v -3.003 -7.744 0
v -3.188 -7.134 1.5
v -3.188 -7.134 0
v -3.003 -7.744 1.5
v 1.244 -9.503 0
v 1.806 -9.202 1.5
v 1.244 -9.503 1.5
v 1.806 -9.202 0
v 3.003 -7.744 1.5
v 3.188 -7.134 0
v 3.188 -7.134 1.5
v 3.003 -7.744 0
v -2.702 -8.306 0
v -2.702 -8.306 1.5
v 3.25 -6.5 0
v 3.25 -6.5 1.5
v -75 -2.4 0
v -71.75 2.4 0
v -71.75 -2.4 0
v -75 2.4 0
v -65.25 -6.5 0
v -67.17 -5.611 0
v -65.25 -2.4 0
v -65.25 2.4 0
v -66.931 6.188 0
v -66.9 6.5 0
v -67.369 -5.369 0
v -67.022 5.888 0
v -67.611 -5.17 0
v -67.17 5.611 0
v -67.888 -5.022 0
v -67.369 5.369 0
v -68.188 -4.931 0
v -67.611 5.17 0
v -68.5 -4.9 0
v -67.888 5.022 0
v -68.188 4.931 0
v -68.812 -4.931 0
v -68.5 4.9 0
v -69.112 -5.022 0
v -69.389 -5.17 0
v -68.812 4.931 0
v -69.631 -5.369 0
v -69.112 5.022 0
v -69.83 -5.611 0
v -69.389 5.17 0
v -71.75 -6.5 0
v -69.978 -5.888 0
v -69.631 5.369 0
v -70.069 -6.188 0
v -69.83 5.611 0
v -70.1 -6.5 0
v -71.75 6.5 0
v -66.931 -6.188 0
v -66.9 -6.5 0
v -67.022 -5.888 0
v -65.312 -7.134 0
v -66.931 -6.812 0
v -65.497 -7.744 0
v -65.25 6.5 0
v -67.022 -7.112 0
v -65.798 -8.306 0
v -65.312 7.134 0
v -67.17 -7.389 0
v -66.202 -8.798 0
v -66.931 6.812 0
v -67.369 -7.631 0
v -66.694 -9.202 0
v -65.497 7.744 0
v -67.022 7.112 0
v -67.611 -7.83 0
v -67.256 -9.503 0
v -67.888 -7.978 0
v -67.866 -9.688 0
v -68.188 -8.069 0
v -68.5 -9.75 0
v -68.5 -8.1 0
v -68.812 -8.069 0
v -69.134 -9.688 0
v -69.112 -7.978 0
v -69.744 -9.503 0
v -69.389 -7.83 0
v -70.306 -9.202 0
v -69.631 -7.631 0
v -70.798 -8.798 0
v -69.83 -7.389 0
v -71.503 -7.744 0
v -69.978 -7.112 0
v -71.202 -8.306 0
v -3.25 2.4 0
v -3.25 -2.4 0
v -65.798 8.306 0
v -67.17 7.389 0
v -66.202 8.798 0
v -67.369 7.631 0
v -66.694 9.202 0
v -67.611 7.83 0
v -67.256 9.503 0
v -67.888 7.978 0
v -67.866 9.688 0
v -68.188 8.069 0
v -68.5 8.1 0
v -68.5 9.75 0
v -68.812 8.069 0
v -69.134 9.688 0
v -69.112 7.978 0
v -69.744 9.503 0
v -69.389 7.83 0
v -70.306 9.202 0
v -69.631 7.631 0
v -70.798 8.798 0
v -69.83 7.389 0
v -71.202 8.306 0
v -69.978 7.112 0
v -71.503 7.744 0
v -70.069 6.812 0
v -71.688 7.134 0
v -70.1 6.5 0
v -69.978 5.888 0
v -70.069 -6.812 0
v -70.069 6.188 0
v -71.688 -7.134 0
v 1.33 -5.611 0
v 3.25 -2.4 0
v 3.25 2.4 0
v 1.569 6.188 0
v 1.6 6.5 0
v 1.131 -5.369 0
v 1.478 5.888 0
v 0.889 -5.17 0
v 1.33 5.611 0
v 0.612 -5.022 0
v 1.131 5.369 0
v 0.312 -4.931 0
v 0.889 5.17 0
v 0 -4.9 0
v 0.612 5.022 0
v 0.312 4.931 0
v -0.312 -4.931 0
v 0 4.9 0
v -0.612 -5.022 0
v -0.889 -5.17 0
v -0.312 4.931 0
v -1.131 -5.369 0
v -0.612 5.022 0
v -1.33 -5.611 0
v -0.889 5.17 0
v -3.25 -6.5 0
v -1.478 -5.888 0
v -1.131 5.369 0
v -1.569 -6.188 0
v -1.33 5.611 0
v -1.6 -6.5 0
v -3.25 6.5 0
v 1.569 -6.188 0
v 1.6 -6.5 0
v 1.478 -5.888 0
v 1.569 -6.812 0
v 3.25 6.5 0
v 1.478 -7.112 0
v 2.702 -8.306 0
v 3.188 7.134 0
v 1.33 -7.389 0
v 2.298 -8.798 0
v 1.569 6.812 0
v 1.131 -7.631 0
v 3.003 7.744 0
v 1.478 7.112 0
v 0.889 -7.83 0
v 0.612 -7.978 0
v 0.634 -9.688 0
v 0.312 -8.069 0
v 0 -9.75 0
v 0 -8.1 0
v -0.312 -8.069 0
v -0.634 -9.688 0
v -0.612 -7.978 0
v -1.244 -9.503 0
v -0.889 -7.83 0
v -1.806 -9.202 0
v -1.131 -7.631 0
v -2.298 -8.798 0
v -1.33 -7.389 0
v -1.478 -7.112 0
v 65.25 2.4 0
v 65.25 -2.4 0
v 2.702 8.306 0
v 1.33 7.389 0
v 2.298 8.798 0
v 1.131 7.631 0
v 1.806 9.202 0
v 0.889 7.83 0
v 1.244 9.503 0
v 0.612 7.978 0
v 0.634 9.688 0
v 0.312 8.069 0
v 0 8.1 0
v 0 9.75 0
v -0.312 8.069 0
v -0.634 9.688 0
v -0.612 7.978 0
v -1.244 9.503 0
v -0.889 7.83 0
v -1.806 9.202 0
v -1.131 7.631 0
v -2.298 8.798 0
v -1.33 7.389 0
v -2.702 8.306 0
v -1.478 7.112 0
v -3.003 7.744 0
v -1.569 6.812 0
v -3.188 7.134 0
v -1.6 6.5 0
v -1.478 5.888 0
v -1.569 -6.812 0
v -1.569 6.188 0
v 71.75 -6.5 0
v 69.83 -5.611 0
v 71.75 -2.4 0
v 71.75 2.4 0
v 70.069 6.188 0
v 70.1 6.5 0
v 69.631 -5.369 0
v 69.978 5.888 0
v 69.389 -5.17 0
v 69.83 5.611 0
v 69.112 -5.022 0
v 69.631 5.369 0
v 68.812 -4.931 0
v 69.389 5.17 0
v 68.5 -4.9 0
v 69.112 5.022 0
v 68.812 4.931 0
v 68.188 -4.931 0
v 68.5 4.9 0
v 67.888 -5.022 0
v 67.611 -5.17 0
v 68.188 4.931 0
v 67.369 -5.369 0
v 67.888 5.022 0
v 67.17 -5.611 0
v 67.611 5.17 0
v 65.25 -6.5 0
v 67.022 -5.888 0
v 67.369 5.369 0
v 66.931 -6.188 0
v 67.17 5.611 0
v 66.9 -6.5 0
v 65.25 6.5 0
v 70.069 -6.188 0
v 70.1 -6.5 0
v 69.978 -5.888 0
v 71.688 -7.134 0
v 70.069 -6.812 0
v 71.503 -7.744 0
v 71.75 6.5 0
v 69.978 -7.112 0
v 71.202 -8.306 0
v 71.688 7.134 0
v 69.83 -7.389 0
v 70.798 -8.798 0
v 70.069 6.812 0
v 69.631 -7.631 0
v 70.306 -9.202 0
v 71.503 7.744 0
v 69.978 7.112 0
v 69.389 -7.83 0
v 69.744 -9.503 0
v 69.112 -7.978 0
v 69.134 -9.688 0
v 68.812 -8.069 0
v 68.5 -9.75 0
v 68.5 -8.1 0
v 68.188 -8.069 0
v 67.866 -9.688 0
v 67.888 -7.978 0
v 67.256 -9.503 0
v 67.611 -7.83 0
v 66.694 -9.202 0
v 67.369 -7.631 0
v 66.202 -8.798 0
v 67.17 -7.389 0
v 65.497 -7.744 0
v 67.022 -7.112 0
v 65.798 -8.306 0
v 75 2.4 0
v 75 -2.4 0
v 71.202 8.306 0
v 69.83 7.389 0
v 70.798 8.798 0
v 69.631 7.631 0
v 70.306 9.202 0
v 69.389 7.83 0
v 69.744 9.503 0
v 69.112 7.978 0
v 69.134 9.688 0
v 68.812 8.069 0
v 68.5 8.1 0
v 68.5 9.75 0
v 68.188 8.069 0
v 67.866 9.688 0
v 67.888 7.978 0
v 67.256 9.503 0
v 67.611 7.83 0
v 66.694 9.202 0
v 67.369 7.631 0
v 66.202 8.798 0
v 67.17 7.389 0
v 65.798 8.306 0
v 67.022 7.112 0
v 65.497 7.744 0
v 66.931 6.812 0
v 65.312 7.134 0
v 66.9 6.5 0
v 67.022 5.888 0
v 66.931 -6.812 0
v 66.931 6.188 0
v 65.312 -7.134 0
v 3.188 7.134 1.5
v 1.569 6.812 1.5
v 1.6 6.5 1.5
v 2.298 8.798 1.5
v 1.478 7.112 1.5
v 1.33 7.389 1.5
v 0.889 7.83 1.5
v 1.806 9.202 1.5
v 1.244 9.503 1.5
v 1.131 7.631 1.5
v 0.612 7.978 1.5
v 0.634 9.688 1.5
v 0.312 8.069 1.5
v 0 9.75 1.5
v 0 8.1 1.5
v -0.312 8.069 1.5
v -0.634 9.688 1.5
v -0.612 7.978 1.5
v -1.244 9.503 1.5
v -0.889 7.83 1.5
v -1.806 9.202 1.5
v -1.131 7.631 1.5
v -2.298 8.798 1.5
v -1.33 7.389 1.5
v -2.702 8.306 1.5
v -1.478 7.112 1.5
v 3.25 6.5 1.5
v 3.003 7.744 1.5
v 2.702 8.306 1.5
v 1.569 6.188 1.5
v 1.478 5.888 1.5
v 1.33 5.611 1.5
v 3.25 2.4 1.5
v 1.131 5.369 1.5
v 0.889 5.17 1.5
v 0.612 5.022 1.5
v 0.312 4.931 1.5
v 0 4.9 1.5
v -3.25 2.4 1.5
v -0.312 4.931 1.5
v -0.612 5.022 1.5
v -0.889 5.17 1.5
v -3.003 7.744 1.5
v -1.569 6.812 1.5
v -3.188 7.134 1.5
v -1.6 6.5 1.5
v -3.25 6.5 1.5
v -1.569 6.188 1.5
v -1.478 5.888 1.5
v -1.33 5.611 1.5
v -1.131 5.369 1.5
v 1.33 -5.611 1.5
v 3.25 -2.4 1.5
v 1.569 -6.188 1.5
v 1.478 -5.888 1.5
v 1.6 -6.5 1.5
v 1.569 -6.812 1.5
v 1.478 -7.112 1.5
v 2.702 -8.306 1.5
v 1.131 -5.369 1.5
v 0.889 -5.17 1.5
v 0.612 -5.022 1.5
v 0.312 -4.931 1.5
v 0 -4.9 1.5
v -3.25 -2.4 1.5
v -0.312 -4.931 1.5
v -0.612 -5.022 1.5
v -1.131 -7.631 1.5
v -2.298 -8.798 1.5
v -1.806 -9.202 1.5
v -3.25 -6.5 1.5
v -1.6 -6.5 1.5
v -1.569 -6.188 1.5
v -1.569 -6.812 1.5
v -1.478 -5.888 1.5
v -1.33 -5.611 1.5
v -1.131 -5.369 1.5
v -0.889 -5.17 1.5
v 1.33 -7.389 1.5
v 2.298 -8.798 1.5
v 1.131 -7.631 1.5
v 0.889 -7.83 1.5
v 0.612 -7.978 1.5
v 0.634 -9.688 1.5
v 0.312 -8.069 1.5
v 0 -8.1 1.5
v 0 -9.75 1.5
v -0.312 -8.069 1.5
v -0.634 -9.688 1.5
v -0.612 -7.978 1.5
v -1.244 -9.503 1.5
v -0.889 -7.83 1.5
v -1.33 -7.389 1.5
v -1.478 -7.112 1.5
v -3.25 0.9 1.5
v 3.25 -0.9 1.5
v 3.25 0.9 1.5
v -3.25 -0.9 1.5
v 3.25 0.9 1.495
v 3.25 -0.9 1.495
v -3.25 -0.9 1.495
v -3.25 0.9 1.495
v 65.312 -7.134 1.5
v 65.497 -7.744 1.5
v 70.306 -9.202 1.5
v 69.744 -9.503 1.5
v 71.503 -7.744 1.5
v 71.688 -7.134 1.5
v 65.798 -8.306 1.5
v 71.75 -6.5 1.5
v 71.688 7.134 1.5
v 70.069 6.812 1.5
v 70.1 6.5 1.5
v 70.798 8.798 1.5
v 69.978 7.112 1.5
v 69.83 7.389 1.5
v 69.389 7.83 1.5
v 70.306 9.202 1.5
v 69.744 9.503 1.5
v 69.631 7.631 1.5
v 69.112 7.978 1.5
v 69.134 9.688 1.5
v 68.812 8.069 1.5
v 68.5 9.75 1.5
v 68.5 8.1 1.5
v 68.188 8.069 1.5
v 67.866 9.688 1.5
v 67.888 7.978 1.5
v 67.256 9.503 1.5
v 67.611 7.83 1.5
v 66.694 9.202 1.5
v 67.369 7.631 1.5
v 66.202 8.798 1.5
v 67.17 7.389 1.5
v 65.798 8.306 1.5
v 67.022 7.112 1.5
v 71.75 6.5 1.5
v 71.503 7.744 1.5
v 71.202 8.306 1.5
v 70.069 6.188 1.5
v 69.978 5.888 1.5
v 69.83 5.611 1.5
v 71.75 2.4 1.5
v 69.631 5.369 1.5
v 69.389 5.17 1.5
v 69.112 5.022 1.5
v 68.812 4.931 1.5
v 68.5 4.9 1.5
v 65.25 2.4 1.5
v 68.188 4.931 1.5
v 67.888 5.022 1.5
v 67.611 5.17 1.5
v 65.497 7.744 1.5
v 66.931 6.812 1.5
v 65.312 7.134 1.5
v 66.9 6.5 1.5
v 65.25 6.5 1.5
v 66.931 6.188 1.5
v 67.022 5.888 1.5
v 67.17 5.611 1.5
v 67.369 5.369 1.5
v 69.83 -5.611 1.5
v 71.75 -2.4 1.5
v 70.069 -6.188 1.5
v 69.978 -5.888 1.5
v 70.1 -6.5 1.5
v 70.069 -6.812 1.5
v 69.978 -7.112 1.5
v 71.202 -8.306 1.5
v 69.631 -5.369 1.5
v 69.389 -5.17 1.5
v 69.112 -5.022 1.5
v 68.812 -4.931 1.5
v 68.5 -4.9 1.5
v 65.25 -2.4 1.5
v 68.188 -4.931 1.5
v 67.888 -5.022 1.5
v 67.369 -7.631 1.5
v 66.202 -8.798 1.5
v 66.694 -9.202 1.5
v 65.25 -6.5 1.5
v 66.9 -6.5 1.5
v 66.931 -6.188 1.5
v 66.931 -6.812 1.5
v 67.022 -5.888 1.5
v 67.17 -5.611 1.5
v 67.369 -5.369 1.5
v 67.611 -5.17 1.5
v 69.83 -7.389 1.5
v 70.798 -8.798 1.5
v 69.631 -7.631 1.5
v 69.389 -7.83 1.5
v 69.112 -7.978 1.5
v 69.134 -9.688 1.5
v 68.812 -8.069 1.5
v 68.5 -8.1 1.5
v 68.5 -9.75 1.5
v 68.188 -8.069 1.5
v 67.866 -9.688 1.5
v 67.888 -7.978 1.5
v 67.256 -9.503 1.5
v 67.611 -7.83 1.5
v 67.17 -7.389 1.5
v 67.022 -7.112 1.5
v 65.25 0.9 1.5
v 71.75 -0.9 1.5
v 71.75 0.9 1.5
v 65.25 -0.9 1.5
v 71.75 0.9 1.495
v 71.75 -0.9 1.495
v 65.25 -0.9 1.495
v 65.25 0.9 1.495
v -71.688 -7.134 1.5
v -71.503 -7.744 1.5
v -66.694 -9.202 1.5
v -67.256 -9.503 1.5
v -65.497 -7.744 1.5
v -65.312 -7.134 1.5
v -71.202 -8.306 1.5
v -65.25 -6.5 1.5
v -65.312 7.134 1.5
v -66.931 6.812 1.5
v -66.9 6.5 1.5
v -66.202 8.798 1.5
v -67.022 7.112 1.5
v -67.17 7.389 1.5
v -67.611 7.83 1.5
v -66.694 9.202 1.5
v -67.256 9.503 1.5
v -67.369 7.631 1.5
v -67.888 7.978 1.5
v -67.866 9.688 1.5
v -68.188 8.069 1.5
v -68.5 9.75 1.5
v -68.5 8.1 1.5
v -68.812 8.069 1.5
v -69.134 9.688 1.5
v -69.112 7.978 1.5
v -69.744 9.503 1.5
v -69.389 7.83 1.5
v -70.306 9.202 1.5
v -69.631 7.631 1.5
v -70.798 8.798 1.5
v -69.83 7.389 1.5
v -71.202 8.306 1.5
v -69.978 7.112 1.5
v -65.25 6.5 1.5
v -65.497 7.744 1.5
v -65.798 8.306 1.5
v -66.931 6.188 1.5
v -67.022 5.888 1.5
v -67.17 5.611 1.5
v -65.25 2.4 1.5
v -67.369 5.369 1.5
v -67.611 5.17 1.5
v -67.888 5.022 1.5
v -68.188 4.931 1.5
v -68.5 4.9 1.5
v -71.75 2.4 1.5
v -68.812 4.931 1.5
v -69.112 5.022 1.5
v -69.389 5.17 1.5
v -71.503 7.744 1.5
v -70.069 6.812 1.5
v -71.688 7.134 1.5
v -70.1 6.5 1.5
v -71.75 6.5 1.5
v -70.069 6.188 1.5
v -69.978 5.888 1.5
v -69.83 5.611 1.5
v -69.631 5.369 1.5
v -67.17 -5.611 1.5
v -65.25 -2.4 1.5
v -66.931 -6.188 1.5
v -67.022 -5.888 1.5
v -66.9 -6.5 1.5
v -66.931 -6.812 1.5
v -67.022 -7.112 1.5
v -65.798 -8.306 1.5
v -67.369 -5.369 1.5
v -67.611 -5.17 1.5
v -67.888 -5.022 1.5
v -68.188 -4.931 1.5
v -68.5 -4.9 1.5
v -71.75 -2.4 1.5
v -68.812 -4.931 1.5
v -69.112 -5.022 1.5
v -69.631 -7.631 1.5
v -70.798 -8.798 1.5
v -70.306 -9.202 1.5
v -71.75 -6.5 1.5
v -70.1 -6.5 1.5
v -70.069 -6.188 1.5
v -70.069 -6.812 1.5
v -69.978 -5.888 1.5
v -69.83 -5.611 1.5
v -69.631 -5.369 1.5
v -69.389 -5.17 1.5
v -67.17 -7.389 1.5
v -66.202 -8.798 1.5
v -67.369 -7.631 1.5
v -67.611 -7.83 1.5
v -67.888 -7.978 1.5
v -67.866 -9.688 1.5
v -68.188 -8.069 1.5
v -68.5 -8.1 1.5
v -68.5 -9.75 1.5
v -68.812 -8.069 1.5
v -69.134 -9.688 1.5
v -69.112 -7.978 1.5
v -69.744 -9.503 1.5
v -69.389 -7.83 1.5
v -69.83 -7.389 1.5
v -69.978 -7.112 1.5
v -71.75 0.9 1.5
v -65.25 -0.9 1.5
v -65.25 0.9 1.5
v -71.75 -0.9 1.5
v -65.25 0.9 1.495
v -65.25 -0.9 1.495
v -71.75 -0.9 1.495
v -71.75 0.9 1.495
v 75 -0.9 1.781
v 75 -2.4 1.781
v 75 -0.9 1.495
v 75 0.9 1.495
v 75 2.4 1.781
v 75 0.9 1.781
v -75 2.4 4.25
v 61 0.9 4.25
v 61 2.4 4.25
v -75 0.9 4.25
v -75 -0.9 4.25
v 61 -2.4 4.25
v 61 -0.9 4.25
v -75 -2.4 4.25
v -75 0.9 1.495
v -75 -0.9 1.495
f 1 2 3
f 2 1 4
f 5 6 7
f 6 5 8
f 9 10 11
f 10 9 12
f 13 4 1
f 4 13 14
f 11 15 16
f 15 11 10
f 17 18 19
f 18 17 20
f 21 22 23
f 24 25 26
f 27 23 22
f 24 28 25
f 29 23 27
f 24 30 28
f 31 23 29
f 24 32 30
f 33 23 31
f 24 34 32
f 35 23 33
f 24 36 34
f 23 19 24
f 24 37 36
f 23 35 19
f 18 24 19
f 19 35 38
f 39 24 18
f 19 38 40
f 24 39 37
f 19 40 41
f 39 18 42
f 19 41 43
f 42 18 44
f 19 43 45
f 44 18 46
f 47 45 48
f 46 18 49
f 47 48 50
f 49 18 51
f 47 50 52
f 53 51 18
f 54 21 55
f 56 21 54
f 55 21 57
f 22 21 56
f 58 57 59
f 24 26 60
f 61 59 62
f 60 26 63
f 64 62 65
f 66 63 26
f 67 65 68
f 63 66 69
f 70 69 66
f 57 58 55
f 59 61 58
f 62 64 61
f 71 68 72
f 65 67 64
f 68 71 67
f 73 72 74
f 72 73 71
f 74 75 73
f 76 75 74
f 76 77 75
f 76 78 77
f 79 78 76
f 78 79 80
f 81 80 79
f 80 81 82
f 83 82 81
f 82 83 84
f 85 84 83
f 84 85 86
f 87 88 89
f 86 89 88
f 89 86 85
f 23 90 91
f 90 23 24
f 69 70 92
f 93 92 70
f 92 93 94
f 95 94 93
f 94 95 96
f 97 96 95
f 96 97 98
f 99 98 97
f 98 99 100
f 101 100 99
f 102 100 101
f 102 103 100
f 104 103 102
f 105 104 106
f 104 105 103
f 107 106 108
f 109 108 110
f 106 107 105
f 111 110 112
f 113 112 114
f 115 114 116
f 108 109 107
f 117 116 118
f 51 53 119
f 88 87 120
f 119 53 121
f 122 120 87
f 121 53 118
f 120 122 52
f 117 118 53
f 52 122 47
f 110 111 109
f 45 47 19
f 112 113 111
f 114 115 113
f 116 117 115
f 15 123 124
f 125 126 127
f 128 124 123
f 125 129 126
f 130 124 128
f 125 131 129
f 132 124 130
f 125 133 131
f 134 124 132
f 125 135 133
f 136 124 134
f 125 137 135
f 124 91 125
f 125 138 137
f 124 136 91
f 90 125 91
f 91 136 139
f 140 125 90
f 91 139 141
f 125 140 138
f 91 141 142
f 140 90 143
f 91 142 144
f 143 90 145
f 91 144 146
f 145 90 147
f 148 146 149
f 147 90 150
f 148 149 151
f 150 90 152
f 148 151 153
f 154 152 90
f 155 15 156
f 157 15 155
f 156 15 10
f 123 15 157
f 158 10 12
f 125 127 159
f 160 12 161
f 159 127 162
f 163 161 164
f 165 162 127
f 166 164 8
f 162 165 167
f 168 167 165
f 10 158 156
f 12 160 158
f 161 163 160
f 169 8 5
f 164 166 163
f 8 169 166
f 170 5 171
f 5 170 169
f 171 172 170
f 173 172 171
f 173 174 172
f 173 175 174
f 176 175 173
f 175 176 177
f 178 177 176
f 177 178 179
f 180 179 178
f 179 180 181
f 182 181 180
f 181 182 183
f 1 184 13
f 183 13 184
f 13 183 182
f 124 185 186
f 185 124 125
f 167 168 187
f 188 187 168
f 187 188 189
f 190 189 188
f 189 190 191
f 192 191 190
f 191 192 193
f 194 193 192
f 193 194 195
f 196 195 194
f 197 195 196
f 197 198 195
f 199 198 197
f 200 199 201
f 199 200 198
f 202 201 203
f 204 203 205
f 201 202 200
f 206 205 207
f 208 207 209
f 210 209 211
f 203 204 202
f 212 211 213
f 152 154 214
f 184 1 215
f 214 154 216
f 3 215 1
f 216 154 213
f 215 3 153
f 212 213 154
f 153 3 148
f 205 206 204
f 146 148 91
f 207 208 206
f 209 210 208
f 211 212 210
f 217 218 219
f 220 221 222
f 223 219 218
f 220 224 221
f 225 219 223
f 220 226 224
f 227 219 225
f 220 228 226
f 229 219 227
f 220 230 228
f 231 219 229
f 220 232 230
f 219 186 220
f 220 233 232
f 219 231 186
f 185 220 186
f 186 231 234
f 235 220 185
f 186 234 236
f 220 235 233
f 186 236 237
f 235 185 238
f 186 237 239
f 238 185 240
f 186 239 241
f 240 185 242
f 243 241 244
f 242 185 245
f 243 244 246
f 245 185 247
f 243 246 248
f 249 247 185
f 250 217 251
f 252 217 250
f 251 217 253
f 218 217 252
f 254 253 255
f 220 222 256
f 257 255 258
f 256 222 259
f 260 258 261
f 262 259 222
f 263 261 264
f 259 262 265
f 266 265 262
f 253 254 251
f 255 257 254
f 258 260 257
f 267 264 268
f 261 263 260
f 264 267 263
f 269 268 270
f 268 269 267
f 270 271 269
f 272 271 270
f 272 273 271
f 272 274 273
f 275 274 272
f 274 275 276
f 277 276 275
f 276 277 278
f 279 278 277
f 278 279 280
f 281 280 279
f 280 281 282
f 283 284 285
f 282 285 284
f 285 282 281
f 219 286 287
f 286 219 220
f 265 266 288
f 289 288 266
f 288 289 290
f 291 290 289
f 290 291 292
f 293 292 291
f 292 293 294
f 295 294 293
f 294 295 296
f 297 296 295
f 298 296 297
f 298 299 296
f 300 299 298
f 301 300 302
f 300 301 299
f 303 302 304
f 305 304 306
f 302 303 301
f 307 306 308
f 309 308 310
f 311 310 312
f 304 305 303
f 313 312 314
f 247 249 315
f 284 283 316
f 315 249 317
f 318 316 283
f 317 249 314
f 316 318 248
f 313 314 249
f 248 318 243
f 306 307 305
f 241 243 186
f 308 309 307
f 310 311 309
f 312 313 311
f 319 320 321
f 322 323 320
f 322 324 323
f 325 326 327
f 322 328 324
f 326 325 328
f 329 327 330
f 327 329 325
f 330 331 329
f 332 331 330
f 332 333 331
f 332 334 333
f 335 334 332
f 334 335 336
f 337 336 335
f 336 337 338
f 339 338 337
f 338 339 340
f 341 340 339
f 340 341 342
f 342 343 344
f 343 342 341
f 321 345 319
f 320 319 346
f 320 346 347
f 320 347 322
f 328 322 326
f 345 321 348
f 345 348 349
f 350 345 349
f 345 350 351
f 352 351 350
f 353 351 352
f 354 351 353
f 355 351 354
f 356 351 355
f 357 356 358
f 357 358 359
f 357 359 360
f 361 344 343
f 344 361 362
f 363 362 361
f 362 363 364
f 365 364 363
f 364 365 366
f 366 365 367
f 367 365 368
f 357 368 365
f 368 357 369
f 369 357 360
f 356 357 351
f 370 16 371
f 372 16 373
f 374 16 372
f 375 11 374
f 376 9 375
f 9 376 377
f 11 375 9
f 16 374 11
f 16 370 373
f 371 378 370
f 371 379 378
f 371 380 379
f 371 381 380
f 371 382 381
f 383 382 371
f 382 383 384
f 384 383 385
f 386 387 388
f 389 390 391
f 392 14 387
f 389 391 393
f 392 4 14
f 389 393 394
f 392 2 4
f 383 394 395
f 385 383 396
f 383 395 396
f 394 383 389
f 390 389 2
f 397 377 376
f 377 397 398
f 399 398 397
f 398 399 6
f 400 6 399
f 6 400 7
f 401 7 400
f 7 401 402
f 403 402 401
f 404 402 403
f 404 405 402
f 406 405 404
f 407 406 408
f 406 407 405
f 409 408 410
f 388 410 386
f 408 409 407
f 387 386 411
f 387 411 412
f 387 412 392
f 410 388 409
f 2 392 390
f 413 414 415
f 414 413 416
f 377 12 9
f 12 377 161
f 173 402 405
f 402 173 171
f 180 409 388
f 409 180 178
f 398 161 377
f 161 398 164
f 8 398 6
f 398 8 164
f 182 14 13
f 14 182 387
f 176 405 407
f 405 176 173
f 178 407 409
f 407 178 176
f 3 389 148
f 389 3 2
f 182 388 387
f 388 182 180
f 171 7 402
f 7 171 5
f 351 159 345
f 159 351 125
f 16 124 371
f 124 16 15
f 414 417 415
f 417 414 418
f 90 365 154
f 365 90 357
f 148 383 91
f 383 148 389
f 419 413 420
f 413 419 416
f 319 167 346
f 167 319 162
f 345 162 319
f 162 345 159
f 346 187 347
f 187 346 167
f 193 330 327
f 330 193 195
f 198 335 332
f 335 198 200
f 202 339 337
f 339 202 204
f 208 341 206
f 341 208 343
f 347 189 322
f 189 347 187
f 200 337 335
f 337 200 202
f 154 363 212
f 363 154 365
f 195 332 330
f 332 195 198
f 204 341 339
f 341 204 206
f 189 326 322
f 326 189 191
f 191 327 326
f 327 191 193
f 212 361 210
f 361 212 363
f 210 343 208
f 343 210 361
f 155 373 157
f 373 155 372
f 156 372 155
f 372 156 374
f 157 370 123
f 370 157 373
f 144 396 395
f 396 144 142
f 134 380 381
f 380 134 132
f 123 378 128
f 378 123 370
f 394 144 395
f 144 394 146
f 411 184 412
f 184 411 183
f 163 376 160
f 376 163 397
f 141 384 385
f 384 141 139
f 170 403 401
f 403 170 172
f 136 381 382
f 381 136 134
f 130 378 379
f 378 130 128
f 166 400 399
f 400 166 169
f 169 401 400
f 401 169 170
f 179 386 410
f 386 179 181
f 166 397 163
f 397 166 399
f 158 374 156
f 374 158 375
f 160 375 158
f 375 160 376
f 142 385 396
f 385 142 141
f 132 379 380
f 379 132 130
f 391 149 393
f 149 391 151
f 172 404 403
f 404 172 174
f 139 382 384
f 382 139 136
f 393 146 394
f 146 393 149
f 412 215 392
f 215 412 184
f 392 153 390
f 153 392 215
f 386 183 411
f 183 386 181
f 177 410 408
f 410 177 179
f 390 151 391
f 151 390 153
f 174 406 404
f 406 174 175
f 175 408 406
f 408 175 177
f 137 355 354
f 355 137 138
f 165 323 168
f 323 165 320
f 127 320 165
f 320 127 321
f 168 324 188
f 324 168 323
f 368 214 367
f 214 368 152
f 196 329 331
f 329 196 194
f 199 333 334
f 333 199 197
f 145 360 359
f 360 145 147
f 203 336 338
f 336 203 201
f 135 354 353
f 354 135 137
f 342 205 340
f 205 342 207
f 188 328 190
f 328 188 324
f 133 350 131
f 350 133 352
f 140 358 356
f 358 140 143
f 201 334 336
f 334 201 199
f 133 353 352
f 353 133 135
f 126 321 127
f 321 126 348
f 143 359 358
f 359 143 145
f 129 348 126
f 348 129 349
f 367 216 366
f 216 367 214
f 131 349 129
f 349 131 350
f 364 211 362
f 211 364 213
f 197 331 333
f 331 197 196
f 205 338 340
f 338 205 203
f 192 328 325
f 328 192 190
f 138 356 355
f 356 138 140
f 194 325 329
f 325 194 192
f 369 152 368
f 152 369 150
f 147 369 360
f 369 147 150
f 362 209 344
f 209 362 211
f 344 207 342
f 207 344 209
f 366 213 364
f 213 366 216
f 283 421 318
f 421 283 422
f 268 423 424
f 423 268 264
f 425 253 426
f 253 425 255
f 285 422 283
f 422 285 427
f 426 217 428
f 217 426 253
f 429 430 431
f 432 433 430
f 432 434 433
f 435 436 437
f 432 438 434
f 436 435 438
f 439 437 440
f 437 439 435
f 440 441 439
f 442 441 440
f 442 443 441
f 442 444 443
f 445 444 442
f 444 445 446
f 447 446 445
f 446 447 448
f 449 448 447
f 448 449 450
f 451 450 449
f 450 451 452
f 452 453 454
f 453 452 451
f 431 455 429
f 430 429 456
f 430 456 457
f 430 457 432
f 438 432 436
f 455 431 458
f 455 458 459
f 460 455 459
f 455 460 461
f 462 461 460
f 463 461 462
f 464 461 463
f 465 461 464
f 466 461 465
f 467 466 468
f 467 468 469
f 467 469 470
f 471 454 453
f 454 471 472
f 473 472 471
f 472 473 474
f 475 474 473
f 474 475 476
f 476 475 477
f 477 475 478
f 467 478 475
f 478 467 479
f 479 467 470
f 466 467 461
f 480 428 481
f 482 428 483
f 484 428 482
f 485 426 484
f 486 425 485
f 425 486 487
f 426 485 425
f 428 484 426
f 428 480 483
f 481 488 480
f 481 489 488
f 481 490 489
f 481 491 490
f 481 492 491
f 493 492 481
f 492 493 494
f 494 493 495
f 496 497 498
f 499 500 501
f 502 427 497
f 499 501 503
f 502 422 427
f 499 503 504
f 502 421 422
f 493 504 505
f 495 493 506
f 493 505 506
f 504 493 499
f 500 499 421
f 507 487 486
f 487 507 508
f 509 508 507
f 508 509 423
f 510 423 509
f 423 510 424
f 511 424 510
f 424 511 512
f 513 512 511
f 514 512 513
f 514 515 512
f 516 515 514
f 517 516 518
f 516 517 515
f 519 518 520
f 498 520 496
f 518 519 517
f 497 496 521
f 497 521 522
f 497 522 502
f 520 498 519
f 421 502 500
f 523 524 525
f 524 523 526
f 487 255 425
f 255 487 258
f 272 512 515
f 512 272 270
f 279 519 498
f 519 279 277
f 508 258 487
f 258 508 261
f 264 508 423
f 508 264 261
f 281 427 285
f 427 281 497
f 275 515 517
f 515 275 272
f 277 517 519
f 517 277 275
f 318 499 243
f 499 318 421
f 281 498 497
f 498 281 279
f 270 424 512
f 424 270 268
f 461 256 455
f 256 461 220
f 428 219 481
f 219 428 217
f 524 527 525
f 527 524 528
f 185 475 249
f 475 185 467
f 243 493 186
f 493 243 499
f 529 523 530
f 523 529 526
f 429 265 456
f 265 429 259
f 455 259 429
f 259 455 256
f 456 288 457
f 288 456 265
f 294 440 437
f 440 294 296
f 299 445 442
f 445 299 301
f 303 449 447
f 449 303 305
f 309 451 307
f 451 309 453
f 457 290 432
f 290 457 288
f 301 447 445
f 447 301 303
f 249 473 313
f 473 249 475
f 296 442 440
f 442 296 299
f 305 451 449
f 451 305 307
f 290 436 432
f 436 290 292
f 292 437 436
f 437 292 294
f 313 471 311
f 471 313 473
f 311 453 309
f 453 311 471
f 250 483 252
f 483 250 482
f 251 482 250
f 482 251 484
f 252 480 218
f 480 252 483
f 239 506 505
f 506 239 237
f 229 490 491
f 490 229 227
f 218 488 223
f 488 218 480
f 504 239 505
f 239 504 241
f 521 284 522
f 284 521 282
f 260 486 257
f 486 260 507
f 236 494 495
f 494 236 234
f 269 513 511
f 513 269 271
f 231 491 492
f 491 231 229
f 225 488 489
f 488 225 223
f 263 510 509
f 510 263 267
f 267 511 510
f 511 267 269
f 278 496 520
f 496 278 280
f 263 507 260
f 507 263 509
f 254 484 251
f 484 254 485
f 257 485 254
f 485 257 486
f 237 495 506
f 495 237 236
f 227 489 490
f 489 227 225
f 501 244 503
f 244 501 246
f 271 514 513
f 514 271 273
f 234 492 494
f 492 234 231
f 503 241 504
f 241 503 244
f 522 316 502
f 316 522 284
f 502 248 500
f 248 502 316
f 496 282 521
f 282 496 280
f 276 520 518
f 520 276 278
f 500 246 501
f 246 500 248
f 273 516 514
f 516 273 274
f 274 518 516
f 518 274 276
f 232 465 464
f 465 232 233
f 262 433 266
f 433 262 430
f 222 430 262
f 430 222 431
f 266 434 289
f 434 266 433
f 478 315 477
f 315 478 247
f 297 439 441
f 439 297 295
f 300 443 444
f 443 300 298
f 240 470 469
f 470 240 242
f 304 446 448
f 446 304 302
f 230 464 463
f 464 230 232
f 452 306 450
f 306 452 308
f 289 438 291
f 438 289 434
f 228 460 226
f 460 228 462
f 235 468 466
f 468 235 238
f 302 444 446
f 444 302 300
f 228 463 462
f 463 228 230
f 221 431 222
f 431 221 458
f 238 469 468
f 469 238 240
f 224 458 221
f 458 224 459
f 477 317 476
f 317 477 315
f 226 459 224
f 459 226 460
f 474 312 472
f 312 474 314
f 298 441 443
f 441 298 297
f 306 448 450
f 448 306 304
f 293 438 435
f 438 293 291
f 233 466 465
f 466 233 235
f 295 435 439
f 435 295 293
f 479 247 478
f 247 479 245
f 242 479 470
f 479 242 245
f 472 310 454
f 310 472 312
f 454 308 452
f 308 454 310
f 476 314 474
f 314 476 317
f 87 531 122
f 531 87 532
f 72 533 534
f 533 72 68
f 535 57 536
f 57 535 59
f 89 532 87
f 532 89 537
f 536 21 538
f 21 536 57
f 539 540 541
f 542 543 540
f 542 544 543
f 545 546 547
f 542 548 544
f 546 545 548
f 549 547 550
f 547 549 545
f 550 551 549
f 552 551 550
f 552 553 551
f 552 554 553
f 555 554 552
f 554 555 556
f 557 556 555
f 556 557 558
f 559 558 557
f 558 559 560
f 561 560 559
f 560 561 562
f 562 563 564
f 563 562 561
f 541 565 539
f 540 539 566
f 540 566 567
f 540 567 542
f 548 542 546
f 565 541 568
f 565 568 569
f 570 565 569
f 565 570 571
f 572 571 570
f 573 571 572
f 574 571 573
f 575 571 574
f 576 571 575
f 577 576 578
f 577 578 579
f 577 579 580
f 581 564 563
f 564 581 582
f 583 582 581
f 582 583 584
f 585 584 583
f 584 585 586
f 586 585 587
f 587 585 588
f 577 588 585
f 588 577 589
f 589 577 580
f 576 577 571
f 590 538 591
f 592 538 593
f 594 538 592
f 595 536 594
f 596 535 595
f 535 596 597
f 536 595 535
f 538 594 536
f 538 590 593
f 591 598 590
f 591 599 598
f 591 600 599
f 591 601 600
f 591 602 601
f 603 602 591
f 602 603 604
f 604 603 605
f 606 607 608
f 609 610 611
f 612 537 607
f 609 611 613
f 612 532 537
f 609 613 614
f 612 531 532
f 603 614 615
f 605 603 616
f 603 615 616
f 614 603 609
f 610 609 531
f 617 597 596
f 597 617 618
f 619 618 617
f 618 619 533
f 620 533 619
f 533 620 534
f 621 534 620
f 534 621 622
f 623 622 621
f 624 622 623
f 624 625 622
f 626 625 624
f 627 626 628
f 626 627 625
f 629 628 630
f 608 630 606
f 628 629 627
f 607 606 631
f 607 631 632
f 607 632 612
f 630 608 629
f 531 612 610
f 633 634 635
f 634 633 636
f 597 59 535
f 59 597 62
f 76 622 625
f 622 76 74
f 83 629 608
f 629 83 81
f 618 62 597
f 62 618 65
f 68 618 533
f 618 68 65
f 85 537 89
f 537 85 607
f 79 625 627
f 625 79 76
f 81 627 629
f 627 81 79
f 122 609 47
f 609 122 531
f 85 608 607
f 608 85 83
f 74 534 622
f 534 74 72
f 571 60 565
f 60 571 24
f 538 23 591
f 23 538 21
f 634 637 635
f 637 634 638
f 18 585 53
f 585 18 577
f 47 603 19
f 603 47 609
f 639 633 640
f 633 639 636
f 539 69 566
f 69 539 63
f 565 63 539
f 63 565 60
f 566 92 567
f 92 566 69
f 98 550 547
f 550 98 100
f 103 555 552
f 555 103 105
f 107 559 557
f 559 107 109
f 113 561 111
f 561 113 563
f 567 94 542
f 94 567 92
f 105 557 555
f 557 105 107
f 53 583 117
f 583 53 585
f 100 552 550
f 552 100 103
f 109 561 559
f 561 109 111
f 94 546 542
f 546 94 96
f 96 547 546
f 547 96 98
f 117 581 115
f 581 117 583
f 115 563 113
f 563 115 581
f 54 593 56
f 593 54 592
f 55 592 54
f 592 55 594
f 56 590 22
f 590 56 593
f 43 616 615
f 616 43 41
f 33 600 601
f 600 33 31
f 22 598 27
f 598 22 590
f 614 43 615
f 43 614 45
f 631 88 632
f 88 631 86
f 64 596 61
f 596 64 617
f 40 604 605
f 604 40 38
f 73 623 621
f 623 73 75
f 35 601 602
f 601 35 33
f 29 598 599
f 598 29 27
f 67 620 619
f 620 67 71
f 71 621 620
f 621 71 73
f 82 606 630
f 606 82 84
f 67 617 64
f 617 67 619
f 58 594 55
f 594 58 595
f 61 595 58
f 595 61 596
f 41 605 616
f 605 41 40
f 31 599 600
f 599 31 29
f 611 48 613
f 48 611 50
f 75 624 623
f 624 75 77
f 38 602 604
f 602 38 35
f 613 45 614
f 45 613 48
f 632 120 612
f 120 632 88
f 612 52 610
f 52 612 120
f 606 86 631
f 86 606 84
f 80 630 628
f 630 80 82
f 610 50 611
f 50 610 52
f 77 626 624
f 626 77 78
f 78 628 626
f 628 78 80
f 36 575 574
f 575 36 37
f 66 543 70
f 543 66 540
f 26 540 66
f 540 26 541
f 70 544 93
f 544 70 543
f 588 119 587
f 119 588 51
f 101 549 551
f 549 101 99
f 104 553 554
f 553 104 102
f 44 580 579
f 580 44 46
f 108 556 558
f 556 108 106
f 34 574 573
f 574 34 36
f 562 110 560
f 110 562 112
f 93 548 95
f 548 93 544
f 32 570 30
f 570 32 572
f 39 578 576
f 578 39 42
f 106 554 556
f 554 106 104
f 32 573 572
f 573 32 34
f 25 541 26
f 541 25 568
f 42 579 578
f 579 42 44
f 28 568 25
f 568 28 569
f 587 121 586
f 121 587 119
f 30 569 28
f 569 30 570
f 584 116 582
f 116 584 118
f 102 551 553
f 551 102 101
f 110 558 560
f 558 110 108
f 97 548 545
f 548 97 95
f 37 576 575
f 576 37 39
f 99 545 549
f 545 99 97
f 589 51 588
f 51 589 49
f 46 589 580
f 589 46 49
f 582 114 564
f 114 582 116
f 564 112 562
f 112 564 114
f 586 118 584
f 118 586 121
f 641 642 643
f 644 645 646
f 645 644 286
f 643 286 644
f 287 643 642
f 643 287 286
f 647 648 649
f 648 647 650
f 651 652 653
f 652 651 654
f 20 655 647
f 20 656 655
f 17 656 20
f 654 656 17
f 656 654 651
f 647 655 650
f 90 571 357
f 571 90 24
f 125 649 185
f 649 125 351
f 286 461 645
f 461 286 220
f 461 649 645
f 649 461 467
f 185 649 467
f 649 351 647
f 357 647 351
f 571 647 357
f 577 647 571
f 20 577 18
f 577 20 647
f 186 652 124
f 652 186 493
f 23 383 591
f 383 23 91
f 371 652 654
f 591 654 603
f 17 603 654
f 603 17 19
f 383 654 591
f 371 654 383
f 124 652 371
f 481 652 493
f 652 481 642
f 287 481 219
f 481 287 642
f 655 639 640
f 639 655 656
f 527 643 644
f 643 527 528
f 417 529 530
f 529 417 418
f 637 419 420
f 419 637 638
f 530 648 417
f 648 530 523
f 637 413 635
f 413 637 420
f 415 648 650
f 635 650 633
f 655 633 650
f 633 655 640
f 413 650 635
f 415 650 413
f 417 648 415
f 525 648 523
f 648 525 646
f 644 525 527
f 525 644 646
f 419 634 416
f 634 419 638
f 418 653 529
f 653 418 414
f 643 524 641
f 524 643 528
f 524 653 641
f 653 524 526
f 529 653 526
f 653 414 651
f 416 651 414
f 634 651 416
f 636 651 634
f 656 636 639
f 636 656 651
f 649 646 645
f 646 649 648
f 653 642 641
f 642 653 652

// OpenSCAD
// EurocardGuide3

$fn = 32;

pcbThick = 1.8;
guideLen = 150;
guideHeight = 2.75;
guideThick = 1.5;
guideWidth = guideThick * 2 + pcbThick;

module guide() {
    guideZ = guideThick + guideHeight;
    difference() {
        translate([0, 0, guideZ  / 2]) cube([guideLen, guideWidth, guideZ], true);
        translate([-0.01, 0, guideThick + guideHeight / 2]) 
            cube([guideLen + 0.03, pcbThick, guideHeight + 0.01], true);
        translate([guideLen / 2 -14, -guideWidth/2-0.01, guideZ]) rotate([0, 10, 0]) 
            cube([15, guideWidth + 0.02, guideHeight]);
    }
}

mountWidth = 6.5;
mountHole = 3.2;

module sideMount() {
  difference() {
    union() {
        cylinder(d = mountWidth, h = guideThick);
        translate([-mountWidth / 2, 0, 0]) cube([mountWidth, mountWidth * 2, guideThick]);
        translate([0, mountWidth * 2, 0]) cylinder(d = mountWidth, h = guideThick);
    }
    translate([0, 0, -0.01]) cylinder(d = mountHole, h = guideThick + 0.02);
    translate([0, mountWidth * 2, -0.01]) cylinder(d = mountHole, h = guideThick + 0.02);
  }
}

guide();
translate([guideLen / 2 -mountWidth, -mountWidth, 0]) sideMount();
translate([0, -mountWidth, 0]) sideMount();
translate([-guideLen / 2 +mountWidth, -mountWidth, 0]) sideMount();
